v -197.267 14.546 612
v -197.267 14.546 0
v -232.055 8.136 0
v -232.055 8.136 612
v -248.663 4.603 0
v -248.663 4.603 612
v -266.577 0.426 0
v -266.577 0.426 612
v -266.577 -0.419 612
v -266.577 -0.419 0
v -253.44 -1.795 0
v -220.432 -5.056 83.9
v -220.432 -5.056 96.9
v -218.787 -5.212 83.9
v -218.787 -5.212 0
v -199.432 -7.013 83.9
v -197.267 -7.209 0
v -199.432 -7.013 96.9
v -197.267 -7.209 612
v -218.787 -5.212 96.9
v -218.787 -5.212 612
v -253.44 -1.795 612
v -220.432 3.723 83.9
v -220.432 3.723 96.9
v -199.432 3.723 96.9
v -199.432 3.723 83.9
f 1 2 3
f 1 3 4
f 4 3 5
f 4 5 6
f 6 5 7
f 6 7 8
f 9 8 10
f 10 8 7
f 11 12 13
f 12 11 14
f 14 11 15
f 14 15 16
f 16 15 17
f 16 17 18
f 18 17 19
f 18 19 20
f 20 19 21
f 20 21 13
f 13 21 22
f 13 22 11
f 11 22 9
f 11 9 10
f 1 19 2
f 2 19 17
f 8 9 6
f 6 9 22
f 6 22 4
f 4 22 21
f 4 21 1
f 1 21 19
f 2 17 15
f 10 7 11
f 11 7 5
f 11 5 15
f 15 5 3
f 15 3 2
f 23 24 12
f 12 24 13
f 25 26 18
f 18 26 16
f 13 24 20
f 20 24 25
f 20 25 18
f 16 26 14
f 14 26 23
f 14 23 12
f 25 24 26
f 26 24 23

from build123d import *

# Parameters (mm, degrees)
BOSS_EXTRUDE1_DEPTH = 612
SKETCH2_W           = 21
SKETCH2_H           = 11.5
CUT_EXTRUDE1_DEPTH  = 13


with BuildPart() as part:
    # Sketch1 → Boss-Extrude1 (new body)
    with BuildSketch(Plane.XY):
        with BuildLine():
            Line((-197.26698, 14.545556384), (-197.26698, -7.208910553))
            add(Edge.make_bspline(
                [(-197.26698, -7.208910553), (-199.019685082, -7.050017591), (-203.678439199, -6.627674295), (-211.084107985, -5.939566862), (-219.309277242, -5.164758413), (-227.009246775, -4.426989792), (-234.135070336, -3.733626285), (-240.641108589, -3.09072516), (-246.485492991, -2.504721762), (-251.630355083, -1.980998363), (-256.042317783, -1.527359301), (-259.692220923, -1.143575744), (-262.556904408, -0.849913683), (-264.61546863, -0.612861211), (-265.858416096, -0.512805201), (-266.419029816, -0.418366575), (-266.567688701, -0.418895711), (-266.577, -0.418928854)],
                knots=[0, 0, 0, 0, 0.075810952, 0.201508279, 0.320388141, 0.43169539, 0.534719075, 0.628797147, 0.713321079, 0.787740393, 0.851567051, 0.904379655, 0.945827345, 0.975633259, 0.993597432, 0.999598973, 1, 1, 1, 1], degree=3))
            Line((-266.577, -0.418928854), (-266.577, 0.425749675))
            add(Edge.make_bspline(
                [(-197.26698, 14.545556384), (-199.291263309, 14.209823561), (-204.216747599, 13.392918764), (-211.867868306, 12.029944562), (-220.046716751, 10.510857765), (-227.684960434, 9.024190881), (-234.737637437, 7.595336861), (-241.162806841, 6.244958614), (-246.922671776, 4.994209984), (-251.983535287, 3.863074945), (-256.315994171, 2.870269339), (-259.895031115, 2.032695679), (-262.700108493, 1.365039117), (-264.715189951, 0.879184388), (-265.919534871, 0.586380331), (-266.450919413, 0.456553449), (-266.577, 0.425749675)],
                knots=[0, 0, 0, 0, 0.087007005, 0.211705365, 0.329527113, 0.439740645, 0.541660709, 0.634652346, 0.718134669, 0.791584505, 0.854539888, 0.906603358, 0.947445002, 0.976805146, 0.994496602, 1, 1, 1, 1], degree=3))
        make_face()
    extrude(amount=BOSS_EXTRUDE1_DEPTH)

    # Sketch2 → Cut-Extrude1 (cut)
    with BuildSketch(Plane.XY.offset(83.9)):
        with Locations((-209.932, -2.027)):
            Rectangle(SKETCH2_W, SKETCH2_H)
    extrude(amount=CUT_EXTRUDE1_DEPTH, mode=Mode.SUBTRACT)


solid = part.part
